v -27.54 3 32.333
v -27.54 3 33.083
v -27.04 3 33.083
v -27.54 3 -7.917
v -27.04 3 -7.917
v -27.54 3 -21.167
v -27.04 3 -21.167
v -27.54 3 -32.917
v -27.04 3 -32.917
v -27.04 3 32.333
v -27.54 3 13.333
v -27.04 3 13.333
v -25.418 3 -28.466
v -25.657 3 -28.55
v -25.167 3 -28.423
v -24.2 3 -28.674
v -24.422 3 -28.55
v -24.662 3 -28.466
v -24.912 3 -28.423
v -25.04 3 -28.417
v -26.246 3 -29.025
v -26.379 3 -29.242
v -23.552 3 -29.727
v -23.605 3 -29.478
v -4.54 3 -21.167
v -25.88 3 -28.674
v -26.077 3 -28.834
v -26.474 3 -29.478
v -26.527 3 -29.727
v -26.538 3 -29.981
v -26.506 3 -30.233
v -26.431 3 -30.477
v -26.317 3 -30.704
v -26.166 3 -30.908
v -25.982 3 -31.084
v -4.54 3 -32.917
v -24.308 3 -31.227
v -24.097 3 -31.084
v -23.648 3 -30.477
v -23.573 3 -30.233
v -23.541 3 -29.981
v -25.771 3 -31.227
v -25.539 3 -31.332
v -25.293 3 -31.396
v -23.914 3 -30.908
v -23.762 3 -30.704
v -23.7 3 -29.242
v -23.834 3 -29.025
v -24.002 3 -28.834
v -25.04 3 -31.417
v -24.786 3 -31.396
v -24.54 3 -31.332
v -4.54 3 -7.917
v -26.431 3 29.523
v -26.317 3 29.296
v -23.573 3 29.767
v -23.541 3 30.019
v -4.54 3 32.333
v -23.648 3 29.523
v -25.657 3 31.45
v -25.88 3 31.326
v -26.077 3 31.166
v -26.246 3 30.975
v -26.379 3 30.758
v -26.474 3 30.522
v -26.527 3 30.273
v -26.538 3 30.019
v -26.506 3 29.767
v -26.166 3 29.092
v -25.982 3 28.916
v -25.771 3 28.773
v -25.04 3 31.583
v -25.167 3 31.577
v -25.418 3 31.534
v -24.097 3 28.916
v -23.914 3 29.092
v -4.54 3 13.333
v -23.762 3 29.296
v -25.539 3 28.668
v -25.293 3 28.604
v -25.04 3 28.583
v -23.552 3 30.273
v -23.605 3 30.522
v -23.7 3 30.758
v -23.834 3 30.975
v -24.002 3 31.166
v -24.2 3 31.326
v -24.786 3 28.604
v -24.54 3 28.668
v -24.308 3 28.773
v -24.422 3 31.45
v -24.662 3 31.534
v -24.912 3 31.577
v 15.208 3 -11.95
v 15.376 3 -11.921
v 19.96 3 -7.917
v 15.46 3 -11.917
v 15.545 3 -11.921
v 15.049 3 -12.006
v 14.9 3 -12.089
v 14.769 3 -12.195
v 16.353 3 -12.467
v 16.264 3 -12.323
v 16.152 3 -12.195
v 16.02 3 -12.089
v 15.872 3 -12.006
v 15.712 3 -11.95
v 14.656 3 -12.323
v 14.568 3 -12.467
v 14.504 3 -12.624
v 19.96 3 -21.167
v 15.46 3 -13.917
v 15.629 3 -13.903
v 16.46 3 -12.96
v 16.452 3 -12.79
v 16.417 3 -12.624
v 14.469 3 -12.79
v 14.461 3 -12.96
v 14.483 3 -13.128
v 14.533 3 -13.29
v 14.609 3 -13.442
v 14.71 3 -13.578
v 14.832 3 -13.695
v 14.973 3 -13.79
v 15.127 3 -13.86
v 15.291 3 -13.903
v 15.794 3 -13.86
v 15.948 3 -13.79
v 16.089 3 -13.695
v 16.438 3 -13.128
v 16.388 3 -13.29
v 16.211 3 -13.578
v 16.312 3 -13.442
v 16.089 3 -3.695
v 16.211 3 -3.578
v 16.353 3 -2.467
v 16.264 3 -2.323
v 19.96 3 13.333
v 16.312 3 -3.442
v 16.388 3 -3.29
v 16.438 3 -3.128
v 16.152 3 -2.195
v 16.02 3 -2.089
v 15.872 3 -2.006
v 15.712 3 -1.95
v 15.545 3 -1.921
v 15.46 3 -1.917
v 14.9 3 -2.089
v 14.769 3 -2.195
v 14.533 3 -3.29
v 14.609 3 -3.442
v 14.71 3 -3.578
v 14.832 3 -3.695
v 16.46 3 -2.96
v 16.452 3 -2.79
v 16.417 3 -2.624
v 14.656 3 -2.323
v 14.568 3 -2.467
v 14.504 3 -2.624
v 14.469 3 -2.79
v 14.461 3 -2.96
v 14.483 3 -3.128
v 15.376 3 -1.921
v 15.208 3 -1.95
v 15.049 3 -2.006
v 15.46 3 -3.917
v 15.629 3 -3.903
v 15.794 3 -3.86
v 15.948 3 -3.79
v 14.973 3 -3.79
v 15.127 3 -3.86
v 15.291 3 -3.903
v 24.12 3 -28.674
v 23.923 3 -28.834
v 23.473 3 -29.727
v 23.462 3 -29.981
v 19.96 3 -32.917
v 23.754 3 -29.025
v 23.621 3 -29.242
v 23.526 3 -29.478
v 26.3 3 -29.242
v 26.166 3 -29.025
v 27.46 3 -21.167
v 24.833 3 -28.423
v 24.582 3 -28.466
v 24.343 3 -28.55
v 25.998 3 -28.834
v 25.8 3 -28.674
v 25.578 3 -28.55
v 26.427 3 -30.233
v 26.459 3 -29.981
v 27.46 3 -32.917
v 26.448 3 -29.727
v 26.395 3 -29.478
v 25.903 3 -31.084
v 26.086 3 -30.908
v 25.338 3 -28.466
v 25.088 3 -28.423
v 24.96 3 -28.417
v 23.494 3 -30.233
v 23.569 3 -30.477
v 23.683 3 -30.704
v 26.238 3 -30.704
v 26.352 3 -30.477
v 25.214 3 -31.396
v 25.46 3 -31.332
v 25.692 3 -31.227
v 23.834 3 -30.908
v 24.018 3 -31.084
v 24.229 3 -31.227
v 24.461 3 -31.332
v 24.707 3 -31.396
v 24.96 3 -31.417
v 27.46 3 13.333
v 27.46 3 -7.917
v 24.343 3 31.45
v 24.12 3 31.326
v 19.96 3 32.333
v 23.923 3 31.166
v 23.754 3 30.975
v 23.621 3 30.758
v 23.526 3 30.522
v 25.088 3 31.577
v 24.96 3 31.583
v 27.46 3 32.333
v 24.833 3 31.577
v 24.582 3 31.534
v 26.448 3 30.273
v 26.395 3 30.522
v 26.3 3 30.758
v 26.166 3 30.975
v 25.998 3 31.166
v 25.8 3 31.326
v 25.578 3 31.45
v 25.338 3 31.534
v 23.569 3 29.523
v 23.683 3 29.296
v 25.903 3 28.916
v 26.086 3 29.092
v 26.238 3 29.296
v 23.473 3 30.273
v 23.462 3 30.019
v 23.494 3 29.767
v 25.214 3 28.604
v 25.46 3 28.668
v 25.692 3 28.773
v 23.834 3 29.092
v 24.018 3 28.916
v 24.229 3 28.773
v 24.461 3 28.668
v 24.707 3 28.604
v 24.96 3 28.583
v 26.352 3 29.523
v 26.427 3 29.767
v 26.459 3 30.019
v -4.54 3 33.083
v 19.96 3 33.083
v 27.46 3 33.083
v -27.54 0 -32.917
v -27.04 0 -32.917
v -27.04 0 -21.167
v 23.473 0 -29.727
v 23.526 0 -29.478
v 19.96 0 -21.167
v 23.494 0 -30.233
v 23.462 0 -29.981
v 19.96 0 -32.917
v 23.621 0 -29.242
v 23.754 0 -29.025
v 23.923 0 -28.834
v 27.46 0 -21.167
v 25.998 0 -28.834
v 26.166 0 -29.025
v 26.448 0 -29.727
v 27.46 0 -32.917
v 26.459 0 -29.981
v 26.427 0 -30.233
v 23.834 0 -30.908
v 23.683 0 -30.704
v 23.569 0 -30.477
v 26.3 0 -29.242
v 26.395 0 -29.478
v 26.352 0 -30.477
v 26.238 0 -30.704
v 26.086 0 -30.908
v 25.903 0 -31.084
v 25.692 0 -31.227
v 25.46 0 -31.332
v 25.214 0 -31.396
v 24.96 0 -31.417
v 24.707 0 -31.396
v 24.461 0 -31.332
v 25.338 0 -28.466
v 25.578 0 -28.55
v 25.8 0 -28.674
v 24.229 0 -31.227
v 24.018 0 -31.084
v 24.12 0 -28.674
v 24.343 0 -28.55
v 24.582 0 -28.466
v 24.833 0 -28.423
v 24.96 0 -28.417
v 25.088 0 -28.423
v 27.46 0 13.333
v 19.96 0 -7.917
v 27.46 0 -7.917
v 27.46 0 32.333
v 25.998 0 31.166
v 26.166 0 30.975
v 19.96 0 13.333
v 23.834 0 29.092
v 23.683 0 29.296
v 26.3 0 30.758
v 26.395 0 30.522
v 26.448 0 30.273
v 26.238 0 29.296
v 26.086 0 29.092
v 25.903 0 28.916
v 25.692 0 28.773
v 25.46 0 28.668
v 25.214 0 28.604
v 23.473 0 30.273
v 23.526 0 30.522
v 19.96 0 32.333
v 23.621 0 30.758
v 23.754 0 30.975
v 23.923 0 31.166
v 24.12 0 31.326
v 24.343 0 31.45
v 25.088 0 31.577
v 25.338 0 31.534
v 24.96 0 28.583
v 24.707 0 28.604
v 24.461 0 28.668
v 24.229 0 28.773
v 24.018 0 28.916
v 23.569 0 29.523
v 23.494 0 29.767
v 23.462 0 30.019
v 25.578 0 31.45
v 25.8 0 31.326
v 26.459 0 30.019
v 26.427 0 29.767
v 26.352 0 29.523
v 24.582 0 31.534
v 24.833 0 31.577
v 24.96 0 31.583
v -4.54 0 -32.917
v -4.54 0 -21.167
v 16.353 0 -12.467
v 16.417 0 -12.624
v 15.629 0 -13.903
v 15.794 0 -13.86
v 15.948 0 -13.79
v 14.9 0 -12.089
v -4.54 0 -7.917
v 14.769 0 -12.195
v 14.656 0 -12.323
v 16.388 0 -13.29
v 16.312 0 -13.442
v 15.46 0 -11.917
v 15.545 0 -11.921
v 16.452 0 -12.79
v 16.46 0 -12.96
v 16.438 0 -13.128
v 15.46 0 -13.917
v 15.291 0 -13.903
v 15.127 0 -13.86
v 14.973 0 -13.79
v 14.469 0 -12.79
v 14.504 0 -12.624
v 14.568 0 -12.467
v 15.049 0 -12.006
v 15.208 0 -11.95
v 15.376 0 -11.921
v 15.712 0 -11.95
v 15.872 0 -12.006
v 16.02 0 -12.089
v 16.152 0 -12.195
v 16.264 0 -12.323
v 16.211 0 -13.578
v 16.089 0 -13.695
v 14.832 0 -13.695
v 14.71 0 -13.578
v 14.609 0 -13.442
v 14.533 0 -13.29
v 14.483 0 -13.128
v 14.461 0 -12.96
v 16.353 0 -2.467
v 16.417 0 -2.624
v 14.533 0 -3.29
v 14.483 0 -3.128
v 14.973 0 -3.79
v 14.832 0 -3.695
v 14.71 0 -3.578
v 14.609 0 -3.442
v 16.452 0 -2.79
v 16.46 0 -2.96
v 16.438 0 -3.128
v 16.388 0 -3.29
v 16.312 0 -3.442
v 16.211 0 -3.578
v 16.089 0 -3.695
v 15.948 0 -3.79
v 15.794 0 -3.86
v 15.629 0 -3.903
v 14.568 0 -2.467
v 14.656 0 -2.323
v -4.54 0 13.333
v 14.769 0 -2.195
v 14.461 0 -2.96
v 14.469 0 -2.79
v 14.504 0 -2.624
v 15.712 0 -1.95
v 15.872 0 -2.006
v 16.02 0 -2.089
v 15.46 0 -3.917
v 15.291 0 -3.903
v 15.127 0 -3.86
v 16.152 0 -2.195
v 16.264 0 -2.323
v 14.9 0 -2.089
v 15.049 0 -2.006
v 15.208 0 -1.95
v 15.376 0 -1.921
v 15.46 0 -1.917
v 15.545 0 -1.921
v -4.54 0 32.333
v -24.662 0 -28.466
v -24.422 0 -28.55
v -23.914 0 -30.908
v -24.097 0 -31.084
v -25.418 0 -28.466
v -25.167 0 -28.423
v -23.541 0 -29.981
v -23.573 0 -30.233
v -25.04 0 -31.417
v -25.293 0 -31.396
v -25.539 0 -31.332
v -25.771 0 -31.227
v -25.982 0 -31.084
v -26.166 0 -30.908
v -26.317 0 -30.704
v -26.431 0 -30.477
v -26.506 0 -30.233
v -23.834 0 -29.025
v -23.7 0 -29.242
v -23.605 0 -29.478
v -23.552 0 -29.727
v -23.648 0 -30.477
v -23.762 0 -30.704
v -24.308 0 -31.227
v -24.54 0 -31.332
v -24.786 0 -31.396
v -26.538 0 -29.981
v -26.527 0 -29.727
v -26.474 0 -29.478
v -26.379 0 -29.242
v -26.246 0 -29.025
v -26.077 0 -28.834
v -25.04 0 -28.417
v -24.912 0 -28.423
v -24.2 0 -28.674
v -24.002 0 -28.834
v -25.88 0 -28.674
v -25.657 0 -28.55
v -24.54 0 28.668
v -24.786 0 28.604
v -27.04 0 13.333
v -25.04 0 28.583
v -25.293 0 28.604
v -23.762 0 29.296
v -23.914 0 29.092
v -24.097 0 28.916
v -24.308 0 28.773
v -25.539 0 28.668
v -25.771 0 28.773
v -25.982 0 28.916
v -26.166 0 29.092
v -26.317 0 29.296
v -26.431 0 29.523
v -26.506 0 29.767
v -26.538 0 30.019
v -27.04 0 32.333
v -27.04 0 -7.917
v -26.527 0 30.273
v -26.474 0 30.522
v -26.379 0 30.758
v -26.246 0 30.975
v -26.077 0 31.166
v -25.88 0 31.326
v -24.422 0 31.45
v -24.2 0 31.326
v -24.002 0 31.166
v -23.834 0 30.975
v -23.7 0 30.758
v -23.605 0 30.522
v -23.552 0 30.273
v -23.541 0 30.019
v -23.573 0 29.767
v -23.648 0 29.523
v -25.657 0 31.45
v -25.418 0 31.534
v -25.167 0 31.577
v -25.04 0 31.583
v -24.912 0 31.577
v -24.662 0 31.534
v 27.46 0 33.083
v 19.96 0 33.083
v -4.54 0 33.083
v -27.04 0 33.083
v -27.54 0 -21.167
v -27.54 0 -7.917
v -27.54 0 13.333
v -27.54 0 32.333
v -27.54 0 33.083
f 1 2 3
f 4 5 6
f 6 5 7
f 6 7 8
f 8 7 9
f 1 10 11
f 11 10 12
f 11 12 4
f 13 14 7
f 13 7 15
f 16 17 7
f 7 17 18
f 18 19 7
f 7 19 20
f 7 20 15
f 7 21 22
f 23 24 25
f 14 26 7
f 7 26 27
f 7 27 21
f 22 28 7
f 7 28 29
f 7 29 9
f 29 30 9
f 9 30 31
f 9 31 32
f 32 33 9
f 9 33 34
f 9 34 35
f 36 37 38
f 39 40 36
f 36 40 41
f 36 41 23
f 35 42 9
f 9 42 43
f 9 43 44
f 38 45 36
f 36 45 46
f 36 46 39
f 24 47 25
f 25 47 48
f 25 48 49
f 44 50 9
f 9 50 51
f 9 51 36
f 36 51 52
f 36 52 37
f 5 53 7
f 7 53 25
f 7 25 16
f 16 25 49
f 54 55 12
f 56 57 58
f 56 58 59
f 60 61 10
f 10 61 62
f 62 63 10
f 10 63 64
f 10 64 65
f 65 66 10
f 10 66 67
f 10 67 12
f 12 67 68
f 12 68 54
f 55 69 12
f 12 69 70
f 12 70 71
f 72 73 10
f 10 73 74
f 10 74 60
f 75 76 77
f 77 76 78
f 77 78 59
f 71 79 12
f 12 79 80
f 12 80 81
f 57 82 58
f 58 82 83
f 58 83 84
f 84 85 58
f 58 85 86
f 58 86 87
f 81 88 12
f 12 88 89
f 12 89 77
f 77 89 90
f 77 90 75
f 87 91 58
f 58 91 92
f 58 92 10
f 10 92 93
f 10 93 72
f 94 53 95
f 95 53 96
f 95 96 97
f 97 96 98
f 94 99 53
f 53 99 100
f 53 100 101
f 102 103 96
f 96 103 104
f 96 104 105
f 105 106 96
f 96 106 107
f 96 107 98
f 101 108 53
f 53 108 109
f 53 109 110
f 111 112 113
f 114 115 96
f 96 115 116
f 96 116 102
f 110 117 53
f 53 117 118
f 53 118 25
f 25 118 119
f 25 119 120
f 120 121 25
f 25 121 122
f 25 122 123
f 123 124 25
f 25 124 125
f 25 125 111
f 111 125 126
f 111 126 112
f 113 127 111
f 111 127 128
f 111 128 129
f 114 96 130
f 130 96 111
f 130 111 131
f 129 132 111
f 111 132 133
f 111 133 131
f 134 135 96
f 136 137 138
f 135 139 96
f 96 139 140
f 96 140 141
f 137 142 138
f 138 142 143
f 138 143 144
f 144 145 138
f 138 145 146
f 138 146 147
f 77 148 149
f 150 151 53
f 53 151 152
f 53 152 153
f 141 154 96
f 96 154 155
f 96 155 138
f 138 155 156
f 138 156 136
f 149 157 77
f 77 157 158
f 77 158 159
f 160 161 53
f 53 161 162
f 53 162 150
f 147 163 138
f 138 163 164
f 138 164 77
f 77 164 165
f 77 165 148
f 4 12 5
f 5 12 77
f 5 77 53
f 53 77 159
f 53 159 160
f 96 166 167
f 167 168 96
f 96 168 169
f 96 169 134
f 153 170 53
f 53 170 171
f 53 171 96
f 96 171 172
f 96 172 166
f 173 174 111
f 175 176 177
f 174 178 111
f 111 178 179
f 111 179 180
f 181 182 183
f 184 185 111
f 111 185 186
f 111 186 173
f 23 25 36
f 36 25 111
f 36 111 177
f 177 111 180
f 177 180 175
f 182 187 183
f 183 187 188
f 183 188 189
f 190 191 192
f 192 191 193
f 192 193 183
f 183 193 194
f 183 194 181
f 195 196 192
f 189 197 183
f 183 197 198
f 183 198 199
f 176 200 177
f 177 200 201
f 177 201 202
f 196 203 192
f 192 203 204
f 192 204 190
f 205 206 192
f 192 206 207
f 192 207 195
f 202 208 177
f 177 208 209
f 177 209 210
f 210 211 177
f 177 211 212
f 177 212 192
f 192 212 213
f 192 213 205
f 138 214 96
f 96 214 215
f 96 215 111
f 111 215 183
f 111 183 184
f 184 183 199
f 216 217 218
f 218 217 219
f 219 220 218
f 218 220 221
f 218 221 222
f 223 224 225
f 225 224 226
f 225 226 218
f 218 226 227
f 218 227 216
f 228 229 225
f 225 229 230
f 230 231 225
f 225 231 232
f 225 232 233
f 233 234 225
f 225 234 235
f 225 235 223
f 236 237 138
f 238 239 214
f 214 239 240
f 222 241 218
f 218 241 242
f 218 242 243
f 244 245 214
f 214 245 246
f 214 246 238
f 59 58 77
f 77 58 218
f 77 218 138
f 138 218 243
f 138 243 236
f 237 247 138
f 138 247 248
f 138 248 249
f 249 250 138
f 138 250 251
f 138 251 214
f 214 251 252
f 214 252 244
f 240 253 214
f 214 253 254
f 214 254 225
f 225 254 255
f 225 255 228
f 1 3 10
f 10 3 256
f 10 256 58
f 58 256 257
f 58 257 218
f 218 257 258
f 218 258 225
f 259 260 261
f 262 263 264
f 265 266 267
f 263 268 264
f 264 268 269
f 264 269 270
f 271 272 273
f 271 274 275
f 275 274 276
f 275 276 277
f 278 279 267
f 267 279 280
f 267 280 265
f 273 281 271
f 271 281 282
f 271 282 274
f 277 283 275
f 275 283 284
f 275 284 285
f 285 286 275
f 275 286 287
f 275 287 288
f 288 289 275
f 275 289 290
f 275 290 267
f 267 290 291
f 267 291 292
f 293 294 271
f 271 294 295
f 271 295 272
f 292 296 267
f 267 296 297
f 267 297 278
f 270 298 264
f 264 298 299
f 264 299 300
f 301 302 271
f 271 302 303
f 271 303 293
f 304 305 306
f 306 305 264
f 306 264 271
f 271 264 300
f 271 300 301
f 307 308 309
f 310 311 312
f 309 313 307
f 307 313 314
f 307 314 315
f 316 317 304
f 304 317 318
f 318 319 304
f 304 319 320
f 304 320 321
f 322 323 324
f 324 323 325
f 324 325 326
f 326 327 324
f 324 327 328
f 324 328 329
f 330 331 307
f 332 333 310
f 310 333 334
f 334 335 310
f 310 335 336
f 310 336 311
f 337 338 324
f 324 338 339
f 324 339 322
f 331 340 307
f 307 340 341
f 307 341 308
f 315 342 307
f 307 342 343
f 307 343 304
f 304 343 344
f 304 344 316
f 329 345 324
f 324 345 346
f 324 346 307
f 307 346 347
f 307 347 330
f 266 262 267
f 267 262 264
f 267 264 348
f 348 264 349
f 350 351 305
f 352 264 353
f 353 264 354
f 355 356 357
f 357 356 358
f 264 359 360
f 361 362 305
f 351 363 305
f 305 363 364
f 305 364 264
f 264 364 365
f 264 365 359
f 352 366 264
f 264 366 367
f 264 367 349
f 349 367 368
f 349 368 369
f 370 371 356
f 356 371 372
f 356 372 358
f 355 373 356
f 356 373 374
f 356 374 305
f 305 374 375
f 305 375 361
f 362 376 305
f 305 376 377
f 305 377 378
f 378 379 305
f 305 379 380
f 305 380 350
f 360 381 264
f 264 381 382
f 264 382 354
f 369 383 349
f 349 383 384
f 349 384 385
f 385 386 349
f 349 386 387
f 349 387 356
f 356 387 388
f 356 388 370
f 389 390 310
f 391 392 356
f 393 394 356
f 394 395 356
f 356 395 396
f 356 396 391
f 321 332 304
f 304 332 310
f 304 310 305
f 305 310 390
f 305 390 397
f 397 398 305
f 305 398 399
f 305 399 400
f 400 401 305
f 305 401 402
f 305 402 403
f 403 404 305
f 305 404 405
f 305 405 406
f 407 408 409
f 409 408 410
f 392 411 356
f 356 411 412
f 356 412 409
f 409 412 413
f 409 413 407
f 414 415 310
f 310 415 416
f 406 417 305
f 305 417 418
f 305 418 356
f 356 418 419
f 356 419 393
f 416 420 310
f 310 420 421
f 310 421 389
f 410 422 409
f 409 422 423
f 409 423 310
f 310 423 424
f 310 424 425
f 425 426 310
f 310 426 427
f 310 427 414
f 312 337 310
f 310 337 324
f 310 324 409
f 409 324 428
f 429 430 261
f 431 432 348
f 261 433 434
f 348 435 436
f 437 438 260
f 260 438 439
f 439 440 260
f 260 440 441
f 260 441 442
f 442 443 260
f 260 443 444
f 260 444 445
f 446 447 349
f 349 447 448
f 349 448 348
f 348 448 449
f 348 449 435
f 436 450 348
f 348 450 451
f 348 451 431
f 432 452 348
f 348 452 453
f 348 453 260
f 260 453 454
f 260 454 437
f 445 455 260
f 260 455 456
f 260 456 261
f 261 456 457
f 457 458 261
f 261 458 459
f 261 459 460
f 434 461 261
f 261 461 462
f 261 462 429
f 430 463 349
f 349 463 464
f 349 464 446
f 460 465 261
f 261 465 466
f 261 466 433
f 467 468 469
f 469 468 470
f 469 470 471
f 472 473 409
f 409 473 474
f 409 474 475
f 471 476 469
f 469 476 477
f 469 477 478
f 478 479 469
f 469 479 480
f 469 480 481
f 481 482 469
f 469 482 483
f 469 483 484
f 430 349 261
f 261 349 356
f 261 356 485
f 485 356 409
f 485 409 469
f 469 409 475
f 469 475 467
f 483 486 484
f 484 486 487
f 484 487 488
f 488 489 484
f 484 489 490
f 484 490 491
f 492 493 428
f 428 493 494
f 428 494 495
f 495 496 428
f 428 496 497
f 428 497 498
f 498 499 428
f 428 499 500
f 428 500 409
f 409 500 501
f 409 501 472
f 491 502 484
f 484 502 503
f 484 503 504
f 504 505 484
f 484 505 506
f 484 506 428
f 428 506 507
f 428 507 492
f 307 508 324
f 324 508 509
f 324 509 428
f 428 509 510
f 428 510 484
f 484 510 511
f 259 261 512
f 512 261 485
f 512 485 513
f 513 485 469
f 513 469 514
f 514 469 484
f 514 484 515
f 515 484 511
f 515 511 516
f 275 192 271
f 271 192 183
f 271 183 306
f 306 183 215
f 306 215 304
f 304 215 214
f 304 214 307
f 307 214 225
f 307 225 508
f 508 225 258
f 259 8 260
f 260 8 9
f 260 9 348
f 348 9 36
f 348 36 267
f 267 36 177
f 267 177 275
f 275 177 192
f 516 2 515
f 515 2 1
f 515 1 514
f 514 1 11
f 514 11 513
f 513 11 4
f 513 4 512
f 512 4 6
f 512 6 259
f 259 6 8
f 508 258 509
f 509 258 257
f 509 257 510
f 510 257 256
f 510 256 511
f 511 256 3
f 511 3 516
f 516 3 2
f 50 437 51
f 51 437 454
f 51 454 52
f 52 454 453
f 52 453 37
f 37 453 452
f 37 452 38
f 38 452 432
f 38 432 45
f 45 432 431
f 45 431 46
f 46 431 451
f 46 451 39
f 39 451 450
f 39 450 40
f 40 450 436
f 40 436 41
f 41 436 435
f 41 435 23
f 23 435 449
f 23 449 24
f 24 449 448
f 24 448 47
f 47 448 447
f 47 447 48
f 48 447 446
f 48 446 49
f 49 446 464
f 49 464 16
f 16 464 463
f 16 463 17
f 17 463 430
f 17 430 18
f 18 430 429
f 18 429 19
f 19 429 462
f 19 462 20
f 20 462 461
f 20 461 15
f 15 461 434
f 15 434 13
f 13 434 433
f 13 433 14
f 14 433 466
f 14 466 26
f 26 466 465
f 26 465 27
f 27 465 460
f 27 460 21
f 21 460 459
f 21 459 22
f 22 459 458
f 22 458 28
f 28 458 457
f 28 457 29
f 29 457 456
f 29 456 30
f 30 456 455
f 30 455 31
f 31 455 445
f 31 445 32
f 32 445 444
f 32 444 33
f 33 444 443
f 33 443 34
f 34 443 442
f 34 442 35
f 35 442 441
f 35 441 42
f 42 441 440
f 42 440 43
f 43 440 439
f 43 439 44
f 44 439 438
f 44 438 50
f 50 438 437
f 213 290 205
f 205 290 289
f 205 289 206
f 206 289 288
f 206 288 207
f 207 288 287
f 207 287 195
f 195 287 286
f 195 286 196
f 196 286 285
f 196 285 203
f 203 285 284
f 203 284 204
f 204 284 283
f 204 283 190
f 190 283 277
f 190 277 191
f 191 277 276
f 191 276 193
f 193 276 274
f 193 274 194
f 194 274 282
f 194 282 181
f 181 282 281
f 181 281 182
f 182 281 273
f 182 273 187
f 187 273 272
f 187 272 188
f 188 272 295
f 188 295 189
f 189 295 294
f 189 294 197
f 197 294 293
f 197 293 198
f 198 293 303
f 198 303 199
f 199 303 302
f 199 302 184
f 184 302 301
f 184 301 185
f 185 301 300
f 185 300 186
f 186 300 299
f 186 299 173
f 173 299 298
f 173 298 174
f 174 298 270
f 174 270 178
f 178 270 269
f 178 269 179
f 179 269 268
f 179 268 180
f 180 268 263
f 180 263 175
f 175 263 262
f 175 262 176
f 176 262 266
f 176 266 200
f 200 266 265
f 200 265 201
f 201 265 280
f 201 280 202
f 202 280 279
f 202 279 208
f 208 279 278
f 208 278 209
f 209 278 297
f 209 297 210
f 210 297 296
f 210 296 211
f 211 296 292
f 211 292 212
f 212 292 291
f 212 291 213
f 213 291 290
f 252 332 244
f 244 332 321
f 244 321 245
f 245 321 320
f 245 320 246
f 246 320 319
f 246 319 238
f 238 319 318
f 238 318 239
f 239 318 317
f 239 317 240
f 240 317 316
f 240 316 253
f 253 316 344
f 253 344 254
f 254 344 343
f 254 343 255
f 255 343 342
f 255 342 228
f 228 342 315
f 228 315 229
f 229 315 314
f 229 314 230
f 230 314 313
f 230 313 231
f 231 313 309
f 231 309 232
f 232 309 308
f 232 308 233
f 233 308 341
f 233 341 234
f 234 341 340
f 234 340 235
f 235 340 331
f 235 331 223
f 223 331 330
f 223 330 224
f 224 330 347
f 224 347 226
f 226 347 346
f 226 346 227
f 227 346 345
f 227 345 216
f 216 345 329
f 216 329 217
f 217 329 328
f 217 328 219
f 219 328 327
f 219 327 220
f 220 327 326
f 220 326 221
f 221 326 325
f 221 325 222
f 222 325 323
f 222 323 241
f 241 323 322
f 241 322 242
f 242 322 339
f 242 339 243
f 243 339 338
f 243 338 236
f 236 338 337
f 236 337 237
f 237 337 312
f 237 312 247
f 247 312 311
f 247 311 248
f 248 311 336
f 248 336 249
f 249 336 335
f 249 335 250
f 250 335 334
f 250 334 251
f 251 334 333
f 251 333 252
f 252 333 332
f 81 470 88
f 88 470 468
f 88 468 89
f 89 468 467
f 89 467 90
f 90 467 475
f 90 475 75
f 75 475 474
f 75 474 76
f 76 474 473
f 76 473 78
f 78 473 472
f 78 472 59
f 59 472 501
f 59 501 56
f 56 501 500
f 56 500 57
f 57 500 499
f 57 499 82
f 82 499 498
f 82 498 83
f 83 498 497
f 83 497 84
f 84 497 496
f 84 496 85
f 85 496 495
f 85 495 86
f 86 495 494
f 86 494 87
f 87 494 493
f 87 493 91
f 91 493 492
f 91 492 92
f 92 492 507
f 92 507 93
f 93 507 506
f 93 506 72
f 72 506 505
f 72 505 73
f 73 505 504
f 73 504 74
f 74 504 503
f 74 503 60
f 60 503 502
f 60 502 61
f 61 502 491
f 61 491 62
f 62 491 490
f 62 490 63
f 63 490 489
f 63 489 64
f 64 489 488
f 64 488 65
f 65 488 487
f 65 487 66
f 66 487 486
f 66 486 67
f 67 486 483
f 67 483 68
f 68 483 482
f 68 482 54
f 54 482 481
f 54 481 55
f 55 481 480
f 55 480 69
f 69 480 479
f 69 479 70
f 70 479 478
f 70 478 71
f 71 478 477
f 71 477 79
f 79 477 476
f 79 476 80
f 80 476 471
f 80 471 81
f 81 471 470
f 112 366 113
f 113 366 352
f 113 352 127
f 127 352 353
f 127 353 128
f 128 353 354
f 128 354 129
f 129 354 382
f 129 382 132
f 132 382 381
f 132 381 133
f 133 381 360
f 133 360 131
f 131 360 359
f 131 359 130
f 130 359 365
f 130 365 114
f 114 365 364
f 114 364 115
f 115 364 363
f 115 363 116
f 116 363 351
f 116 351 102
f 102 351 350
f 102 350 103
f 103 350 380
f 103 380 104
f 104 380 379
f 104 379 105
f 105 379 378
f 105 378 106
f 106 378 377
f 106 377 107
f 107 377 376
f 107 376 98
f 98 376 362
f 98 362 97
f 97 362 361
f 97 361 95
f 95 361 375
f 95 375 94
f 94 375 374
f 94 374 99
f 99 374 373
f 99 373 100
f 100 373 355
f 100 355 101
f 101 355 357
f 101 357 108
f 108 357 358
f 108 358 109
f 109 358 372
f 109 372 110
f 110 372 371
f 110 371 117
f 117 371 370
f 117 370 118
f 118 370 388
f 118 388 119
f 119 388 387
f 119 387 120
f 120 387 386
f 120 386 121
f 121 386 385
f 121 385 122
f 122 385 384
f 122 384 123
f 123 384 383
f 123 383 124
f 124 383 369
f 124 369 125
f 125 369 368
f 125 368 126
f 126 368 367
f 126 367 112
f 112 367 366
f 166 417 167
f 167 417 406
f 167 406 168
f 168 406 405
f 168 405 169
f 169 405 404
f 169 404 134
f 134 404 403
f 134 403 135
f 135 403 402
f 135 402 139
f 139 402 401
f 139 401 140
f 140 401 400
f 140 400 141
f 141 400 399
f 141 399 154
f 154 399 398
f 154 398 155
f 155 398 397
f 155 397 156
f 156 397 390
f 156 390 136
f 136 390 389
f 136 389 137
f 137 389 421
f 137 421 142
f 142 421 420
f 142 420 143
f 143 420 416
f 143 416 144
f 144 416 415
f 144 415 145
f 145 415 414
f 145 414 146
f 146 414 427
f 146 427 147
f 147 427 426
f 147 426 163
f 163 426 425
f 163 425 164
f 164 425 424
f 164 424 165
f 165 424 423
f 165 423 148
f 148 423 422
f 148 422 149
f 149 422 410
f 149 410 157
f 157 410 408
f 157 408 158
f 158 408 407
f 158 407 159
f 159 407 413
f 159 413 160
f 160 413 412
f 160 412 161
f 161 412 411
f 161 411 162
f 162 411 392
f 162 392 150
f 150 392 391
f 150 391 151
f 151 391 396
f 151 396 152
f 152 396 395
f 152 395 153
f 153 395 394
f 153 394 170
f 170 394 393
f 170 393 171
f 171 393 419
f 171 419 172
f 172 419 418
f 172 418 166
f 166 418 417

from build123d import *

# Parameters (mm, degrees)
ESQUISSE1_W        = 55
ESQUISSE1_H        = 66
ESQUISSE1_R        = 1.5
ESQUISSE1_R_2      = 1
BOSS_EXTRU_1_DEPTH = 3


with BuildPart() as part:
    # Esquisse1 → Boss.-Extru.1 (new body)
    with BuildSketch(Plane(origin=(0, 0, 0), x_dir=(1, 0, 0), z_dir=(0, 1, 0))):
        with Locations((-0.039557044, -0.082747187)):
            Rectangle(ESQUISSE1_W, ESQUISSE1_H)
        with Locations(Location((-25.039557044, 29.917252813, 0), (0, 0, 270))):
            Circle(ESQUISSE1_R, mode=Mode.SUBTRACT)
        with Locations(Location((24.960442956, 29.917252813, 0), (0, 0, 270))):
            Circle(ESQUISSE1_R, mode=Mode.SUBTRACT)
        with Locations(Location((24.960442956, -30.082747187, 0), (0, 0, 270))):
            Circle(ESQUISSE1_R, mode=Mode.SUBTRACT)
        with Locations(Location((-25.039557044, -30.082747187, 0), (0, 0, 270))):
            Circle(ESQUISSE1_R, mode=Mode.SUBTRACT)
        with Locations(Location((15.460442956, 12.917252813, 0), (0, 0, 270))):
            Circle(ESQUISSE1_R_2, mode=Mode.SUBTRACT)
        with Locations(Location((15.460442956, 2.917252813, 0), (0, 0, 270))):
            Circle(ESQUISSE1_R_2, mode=Mode.SUBTRACT)
    extrude(amount=BOSS_EXTRU_1_DEPTH)


solid = part.part
